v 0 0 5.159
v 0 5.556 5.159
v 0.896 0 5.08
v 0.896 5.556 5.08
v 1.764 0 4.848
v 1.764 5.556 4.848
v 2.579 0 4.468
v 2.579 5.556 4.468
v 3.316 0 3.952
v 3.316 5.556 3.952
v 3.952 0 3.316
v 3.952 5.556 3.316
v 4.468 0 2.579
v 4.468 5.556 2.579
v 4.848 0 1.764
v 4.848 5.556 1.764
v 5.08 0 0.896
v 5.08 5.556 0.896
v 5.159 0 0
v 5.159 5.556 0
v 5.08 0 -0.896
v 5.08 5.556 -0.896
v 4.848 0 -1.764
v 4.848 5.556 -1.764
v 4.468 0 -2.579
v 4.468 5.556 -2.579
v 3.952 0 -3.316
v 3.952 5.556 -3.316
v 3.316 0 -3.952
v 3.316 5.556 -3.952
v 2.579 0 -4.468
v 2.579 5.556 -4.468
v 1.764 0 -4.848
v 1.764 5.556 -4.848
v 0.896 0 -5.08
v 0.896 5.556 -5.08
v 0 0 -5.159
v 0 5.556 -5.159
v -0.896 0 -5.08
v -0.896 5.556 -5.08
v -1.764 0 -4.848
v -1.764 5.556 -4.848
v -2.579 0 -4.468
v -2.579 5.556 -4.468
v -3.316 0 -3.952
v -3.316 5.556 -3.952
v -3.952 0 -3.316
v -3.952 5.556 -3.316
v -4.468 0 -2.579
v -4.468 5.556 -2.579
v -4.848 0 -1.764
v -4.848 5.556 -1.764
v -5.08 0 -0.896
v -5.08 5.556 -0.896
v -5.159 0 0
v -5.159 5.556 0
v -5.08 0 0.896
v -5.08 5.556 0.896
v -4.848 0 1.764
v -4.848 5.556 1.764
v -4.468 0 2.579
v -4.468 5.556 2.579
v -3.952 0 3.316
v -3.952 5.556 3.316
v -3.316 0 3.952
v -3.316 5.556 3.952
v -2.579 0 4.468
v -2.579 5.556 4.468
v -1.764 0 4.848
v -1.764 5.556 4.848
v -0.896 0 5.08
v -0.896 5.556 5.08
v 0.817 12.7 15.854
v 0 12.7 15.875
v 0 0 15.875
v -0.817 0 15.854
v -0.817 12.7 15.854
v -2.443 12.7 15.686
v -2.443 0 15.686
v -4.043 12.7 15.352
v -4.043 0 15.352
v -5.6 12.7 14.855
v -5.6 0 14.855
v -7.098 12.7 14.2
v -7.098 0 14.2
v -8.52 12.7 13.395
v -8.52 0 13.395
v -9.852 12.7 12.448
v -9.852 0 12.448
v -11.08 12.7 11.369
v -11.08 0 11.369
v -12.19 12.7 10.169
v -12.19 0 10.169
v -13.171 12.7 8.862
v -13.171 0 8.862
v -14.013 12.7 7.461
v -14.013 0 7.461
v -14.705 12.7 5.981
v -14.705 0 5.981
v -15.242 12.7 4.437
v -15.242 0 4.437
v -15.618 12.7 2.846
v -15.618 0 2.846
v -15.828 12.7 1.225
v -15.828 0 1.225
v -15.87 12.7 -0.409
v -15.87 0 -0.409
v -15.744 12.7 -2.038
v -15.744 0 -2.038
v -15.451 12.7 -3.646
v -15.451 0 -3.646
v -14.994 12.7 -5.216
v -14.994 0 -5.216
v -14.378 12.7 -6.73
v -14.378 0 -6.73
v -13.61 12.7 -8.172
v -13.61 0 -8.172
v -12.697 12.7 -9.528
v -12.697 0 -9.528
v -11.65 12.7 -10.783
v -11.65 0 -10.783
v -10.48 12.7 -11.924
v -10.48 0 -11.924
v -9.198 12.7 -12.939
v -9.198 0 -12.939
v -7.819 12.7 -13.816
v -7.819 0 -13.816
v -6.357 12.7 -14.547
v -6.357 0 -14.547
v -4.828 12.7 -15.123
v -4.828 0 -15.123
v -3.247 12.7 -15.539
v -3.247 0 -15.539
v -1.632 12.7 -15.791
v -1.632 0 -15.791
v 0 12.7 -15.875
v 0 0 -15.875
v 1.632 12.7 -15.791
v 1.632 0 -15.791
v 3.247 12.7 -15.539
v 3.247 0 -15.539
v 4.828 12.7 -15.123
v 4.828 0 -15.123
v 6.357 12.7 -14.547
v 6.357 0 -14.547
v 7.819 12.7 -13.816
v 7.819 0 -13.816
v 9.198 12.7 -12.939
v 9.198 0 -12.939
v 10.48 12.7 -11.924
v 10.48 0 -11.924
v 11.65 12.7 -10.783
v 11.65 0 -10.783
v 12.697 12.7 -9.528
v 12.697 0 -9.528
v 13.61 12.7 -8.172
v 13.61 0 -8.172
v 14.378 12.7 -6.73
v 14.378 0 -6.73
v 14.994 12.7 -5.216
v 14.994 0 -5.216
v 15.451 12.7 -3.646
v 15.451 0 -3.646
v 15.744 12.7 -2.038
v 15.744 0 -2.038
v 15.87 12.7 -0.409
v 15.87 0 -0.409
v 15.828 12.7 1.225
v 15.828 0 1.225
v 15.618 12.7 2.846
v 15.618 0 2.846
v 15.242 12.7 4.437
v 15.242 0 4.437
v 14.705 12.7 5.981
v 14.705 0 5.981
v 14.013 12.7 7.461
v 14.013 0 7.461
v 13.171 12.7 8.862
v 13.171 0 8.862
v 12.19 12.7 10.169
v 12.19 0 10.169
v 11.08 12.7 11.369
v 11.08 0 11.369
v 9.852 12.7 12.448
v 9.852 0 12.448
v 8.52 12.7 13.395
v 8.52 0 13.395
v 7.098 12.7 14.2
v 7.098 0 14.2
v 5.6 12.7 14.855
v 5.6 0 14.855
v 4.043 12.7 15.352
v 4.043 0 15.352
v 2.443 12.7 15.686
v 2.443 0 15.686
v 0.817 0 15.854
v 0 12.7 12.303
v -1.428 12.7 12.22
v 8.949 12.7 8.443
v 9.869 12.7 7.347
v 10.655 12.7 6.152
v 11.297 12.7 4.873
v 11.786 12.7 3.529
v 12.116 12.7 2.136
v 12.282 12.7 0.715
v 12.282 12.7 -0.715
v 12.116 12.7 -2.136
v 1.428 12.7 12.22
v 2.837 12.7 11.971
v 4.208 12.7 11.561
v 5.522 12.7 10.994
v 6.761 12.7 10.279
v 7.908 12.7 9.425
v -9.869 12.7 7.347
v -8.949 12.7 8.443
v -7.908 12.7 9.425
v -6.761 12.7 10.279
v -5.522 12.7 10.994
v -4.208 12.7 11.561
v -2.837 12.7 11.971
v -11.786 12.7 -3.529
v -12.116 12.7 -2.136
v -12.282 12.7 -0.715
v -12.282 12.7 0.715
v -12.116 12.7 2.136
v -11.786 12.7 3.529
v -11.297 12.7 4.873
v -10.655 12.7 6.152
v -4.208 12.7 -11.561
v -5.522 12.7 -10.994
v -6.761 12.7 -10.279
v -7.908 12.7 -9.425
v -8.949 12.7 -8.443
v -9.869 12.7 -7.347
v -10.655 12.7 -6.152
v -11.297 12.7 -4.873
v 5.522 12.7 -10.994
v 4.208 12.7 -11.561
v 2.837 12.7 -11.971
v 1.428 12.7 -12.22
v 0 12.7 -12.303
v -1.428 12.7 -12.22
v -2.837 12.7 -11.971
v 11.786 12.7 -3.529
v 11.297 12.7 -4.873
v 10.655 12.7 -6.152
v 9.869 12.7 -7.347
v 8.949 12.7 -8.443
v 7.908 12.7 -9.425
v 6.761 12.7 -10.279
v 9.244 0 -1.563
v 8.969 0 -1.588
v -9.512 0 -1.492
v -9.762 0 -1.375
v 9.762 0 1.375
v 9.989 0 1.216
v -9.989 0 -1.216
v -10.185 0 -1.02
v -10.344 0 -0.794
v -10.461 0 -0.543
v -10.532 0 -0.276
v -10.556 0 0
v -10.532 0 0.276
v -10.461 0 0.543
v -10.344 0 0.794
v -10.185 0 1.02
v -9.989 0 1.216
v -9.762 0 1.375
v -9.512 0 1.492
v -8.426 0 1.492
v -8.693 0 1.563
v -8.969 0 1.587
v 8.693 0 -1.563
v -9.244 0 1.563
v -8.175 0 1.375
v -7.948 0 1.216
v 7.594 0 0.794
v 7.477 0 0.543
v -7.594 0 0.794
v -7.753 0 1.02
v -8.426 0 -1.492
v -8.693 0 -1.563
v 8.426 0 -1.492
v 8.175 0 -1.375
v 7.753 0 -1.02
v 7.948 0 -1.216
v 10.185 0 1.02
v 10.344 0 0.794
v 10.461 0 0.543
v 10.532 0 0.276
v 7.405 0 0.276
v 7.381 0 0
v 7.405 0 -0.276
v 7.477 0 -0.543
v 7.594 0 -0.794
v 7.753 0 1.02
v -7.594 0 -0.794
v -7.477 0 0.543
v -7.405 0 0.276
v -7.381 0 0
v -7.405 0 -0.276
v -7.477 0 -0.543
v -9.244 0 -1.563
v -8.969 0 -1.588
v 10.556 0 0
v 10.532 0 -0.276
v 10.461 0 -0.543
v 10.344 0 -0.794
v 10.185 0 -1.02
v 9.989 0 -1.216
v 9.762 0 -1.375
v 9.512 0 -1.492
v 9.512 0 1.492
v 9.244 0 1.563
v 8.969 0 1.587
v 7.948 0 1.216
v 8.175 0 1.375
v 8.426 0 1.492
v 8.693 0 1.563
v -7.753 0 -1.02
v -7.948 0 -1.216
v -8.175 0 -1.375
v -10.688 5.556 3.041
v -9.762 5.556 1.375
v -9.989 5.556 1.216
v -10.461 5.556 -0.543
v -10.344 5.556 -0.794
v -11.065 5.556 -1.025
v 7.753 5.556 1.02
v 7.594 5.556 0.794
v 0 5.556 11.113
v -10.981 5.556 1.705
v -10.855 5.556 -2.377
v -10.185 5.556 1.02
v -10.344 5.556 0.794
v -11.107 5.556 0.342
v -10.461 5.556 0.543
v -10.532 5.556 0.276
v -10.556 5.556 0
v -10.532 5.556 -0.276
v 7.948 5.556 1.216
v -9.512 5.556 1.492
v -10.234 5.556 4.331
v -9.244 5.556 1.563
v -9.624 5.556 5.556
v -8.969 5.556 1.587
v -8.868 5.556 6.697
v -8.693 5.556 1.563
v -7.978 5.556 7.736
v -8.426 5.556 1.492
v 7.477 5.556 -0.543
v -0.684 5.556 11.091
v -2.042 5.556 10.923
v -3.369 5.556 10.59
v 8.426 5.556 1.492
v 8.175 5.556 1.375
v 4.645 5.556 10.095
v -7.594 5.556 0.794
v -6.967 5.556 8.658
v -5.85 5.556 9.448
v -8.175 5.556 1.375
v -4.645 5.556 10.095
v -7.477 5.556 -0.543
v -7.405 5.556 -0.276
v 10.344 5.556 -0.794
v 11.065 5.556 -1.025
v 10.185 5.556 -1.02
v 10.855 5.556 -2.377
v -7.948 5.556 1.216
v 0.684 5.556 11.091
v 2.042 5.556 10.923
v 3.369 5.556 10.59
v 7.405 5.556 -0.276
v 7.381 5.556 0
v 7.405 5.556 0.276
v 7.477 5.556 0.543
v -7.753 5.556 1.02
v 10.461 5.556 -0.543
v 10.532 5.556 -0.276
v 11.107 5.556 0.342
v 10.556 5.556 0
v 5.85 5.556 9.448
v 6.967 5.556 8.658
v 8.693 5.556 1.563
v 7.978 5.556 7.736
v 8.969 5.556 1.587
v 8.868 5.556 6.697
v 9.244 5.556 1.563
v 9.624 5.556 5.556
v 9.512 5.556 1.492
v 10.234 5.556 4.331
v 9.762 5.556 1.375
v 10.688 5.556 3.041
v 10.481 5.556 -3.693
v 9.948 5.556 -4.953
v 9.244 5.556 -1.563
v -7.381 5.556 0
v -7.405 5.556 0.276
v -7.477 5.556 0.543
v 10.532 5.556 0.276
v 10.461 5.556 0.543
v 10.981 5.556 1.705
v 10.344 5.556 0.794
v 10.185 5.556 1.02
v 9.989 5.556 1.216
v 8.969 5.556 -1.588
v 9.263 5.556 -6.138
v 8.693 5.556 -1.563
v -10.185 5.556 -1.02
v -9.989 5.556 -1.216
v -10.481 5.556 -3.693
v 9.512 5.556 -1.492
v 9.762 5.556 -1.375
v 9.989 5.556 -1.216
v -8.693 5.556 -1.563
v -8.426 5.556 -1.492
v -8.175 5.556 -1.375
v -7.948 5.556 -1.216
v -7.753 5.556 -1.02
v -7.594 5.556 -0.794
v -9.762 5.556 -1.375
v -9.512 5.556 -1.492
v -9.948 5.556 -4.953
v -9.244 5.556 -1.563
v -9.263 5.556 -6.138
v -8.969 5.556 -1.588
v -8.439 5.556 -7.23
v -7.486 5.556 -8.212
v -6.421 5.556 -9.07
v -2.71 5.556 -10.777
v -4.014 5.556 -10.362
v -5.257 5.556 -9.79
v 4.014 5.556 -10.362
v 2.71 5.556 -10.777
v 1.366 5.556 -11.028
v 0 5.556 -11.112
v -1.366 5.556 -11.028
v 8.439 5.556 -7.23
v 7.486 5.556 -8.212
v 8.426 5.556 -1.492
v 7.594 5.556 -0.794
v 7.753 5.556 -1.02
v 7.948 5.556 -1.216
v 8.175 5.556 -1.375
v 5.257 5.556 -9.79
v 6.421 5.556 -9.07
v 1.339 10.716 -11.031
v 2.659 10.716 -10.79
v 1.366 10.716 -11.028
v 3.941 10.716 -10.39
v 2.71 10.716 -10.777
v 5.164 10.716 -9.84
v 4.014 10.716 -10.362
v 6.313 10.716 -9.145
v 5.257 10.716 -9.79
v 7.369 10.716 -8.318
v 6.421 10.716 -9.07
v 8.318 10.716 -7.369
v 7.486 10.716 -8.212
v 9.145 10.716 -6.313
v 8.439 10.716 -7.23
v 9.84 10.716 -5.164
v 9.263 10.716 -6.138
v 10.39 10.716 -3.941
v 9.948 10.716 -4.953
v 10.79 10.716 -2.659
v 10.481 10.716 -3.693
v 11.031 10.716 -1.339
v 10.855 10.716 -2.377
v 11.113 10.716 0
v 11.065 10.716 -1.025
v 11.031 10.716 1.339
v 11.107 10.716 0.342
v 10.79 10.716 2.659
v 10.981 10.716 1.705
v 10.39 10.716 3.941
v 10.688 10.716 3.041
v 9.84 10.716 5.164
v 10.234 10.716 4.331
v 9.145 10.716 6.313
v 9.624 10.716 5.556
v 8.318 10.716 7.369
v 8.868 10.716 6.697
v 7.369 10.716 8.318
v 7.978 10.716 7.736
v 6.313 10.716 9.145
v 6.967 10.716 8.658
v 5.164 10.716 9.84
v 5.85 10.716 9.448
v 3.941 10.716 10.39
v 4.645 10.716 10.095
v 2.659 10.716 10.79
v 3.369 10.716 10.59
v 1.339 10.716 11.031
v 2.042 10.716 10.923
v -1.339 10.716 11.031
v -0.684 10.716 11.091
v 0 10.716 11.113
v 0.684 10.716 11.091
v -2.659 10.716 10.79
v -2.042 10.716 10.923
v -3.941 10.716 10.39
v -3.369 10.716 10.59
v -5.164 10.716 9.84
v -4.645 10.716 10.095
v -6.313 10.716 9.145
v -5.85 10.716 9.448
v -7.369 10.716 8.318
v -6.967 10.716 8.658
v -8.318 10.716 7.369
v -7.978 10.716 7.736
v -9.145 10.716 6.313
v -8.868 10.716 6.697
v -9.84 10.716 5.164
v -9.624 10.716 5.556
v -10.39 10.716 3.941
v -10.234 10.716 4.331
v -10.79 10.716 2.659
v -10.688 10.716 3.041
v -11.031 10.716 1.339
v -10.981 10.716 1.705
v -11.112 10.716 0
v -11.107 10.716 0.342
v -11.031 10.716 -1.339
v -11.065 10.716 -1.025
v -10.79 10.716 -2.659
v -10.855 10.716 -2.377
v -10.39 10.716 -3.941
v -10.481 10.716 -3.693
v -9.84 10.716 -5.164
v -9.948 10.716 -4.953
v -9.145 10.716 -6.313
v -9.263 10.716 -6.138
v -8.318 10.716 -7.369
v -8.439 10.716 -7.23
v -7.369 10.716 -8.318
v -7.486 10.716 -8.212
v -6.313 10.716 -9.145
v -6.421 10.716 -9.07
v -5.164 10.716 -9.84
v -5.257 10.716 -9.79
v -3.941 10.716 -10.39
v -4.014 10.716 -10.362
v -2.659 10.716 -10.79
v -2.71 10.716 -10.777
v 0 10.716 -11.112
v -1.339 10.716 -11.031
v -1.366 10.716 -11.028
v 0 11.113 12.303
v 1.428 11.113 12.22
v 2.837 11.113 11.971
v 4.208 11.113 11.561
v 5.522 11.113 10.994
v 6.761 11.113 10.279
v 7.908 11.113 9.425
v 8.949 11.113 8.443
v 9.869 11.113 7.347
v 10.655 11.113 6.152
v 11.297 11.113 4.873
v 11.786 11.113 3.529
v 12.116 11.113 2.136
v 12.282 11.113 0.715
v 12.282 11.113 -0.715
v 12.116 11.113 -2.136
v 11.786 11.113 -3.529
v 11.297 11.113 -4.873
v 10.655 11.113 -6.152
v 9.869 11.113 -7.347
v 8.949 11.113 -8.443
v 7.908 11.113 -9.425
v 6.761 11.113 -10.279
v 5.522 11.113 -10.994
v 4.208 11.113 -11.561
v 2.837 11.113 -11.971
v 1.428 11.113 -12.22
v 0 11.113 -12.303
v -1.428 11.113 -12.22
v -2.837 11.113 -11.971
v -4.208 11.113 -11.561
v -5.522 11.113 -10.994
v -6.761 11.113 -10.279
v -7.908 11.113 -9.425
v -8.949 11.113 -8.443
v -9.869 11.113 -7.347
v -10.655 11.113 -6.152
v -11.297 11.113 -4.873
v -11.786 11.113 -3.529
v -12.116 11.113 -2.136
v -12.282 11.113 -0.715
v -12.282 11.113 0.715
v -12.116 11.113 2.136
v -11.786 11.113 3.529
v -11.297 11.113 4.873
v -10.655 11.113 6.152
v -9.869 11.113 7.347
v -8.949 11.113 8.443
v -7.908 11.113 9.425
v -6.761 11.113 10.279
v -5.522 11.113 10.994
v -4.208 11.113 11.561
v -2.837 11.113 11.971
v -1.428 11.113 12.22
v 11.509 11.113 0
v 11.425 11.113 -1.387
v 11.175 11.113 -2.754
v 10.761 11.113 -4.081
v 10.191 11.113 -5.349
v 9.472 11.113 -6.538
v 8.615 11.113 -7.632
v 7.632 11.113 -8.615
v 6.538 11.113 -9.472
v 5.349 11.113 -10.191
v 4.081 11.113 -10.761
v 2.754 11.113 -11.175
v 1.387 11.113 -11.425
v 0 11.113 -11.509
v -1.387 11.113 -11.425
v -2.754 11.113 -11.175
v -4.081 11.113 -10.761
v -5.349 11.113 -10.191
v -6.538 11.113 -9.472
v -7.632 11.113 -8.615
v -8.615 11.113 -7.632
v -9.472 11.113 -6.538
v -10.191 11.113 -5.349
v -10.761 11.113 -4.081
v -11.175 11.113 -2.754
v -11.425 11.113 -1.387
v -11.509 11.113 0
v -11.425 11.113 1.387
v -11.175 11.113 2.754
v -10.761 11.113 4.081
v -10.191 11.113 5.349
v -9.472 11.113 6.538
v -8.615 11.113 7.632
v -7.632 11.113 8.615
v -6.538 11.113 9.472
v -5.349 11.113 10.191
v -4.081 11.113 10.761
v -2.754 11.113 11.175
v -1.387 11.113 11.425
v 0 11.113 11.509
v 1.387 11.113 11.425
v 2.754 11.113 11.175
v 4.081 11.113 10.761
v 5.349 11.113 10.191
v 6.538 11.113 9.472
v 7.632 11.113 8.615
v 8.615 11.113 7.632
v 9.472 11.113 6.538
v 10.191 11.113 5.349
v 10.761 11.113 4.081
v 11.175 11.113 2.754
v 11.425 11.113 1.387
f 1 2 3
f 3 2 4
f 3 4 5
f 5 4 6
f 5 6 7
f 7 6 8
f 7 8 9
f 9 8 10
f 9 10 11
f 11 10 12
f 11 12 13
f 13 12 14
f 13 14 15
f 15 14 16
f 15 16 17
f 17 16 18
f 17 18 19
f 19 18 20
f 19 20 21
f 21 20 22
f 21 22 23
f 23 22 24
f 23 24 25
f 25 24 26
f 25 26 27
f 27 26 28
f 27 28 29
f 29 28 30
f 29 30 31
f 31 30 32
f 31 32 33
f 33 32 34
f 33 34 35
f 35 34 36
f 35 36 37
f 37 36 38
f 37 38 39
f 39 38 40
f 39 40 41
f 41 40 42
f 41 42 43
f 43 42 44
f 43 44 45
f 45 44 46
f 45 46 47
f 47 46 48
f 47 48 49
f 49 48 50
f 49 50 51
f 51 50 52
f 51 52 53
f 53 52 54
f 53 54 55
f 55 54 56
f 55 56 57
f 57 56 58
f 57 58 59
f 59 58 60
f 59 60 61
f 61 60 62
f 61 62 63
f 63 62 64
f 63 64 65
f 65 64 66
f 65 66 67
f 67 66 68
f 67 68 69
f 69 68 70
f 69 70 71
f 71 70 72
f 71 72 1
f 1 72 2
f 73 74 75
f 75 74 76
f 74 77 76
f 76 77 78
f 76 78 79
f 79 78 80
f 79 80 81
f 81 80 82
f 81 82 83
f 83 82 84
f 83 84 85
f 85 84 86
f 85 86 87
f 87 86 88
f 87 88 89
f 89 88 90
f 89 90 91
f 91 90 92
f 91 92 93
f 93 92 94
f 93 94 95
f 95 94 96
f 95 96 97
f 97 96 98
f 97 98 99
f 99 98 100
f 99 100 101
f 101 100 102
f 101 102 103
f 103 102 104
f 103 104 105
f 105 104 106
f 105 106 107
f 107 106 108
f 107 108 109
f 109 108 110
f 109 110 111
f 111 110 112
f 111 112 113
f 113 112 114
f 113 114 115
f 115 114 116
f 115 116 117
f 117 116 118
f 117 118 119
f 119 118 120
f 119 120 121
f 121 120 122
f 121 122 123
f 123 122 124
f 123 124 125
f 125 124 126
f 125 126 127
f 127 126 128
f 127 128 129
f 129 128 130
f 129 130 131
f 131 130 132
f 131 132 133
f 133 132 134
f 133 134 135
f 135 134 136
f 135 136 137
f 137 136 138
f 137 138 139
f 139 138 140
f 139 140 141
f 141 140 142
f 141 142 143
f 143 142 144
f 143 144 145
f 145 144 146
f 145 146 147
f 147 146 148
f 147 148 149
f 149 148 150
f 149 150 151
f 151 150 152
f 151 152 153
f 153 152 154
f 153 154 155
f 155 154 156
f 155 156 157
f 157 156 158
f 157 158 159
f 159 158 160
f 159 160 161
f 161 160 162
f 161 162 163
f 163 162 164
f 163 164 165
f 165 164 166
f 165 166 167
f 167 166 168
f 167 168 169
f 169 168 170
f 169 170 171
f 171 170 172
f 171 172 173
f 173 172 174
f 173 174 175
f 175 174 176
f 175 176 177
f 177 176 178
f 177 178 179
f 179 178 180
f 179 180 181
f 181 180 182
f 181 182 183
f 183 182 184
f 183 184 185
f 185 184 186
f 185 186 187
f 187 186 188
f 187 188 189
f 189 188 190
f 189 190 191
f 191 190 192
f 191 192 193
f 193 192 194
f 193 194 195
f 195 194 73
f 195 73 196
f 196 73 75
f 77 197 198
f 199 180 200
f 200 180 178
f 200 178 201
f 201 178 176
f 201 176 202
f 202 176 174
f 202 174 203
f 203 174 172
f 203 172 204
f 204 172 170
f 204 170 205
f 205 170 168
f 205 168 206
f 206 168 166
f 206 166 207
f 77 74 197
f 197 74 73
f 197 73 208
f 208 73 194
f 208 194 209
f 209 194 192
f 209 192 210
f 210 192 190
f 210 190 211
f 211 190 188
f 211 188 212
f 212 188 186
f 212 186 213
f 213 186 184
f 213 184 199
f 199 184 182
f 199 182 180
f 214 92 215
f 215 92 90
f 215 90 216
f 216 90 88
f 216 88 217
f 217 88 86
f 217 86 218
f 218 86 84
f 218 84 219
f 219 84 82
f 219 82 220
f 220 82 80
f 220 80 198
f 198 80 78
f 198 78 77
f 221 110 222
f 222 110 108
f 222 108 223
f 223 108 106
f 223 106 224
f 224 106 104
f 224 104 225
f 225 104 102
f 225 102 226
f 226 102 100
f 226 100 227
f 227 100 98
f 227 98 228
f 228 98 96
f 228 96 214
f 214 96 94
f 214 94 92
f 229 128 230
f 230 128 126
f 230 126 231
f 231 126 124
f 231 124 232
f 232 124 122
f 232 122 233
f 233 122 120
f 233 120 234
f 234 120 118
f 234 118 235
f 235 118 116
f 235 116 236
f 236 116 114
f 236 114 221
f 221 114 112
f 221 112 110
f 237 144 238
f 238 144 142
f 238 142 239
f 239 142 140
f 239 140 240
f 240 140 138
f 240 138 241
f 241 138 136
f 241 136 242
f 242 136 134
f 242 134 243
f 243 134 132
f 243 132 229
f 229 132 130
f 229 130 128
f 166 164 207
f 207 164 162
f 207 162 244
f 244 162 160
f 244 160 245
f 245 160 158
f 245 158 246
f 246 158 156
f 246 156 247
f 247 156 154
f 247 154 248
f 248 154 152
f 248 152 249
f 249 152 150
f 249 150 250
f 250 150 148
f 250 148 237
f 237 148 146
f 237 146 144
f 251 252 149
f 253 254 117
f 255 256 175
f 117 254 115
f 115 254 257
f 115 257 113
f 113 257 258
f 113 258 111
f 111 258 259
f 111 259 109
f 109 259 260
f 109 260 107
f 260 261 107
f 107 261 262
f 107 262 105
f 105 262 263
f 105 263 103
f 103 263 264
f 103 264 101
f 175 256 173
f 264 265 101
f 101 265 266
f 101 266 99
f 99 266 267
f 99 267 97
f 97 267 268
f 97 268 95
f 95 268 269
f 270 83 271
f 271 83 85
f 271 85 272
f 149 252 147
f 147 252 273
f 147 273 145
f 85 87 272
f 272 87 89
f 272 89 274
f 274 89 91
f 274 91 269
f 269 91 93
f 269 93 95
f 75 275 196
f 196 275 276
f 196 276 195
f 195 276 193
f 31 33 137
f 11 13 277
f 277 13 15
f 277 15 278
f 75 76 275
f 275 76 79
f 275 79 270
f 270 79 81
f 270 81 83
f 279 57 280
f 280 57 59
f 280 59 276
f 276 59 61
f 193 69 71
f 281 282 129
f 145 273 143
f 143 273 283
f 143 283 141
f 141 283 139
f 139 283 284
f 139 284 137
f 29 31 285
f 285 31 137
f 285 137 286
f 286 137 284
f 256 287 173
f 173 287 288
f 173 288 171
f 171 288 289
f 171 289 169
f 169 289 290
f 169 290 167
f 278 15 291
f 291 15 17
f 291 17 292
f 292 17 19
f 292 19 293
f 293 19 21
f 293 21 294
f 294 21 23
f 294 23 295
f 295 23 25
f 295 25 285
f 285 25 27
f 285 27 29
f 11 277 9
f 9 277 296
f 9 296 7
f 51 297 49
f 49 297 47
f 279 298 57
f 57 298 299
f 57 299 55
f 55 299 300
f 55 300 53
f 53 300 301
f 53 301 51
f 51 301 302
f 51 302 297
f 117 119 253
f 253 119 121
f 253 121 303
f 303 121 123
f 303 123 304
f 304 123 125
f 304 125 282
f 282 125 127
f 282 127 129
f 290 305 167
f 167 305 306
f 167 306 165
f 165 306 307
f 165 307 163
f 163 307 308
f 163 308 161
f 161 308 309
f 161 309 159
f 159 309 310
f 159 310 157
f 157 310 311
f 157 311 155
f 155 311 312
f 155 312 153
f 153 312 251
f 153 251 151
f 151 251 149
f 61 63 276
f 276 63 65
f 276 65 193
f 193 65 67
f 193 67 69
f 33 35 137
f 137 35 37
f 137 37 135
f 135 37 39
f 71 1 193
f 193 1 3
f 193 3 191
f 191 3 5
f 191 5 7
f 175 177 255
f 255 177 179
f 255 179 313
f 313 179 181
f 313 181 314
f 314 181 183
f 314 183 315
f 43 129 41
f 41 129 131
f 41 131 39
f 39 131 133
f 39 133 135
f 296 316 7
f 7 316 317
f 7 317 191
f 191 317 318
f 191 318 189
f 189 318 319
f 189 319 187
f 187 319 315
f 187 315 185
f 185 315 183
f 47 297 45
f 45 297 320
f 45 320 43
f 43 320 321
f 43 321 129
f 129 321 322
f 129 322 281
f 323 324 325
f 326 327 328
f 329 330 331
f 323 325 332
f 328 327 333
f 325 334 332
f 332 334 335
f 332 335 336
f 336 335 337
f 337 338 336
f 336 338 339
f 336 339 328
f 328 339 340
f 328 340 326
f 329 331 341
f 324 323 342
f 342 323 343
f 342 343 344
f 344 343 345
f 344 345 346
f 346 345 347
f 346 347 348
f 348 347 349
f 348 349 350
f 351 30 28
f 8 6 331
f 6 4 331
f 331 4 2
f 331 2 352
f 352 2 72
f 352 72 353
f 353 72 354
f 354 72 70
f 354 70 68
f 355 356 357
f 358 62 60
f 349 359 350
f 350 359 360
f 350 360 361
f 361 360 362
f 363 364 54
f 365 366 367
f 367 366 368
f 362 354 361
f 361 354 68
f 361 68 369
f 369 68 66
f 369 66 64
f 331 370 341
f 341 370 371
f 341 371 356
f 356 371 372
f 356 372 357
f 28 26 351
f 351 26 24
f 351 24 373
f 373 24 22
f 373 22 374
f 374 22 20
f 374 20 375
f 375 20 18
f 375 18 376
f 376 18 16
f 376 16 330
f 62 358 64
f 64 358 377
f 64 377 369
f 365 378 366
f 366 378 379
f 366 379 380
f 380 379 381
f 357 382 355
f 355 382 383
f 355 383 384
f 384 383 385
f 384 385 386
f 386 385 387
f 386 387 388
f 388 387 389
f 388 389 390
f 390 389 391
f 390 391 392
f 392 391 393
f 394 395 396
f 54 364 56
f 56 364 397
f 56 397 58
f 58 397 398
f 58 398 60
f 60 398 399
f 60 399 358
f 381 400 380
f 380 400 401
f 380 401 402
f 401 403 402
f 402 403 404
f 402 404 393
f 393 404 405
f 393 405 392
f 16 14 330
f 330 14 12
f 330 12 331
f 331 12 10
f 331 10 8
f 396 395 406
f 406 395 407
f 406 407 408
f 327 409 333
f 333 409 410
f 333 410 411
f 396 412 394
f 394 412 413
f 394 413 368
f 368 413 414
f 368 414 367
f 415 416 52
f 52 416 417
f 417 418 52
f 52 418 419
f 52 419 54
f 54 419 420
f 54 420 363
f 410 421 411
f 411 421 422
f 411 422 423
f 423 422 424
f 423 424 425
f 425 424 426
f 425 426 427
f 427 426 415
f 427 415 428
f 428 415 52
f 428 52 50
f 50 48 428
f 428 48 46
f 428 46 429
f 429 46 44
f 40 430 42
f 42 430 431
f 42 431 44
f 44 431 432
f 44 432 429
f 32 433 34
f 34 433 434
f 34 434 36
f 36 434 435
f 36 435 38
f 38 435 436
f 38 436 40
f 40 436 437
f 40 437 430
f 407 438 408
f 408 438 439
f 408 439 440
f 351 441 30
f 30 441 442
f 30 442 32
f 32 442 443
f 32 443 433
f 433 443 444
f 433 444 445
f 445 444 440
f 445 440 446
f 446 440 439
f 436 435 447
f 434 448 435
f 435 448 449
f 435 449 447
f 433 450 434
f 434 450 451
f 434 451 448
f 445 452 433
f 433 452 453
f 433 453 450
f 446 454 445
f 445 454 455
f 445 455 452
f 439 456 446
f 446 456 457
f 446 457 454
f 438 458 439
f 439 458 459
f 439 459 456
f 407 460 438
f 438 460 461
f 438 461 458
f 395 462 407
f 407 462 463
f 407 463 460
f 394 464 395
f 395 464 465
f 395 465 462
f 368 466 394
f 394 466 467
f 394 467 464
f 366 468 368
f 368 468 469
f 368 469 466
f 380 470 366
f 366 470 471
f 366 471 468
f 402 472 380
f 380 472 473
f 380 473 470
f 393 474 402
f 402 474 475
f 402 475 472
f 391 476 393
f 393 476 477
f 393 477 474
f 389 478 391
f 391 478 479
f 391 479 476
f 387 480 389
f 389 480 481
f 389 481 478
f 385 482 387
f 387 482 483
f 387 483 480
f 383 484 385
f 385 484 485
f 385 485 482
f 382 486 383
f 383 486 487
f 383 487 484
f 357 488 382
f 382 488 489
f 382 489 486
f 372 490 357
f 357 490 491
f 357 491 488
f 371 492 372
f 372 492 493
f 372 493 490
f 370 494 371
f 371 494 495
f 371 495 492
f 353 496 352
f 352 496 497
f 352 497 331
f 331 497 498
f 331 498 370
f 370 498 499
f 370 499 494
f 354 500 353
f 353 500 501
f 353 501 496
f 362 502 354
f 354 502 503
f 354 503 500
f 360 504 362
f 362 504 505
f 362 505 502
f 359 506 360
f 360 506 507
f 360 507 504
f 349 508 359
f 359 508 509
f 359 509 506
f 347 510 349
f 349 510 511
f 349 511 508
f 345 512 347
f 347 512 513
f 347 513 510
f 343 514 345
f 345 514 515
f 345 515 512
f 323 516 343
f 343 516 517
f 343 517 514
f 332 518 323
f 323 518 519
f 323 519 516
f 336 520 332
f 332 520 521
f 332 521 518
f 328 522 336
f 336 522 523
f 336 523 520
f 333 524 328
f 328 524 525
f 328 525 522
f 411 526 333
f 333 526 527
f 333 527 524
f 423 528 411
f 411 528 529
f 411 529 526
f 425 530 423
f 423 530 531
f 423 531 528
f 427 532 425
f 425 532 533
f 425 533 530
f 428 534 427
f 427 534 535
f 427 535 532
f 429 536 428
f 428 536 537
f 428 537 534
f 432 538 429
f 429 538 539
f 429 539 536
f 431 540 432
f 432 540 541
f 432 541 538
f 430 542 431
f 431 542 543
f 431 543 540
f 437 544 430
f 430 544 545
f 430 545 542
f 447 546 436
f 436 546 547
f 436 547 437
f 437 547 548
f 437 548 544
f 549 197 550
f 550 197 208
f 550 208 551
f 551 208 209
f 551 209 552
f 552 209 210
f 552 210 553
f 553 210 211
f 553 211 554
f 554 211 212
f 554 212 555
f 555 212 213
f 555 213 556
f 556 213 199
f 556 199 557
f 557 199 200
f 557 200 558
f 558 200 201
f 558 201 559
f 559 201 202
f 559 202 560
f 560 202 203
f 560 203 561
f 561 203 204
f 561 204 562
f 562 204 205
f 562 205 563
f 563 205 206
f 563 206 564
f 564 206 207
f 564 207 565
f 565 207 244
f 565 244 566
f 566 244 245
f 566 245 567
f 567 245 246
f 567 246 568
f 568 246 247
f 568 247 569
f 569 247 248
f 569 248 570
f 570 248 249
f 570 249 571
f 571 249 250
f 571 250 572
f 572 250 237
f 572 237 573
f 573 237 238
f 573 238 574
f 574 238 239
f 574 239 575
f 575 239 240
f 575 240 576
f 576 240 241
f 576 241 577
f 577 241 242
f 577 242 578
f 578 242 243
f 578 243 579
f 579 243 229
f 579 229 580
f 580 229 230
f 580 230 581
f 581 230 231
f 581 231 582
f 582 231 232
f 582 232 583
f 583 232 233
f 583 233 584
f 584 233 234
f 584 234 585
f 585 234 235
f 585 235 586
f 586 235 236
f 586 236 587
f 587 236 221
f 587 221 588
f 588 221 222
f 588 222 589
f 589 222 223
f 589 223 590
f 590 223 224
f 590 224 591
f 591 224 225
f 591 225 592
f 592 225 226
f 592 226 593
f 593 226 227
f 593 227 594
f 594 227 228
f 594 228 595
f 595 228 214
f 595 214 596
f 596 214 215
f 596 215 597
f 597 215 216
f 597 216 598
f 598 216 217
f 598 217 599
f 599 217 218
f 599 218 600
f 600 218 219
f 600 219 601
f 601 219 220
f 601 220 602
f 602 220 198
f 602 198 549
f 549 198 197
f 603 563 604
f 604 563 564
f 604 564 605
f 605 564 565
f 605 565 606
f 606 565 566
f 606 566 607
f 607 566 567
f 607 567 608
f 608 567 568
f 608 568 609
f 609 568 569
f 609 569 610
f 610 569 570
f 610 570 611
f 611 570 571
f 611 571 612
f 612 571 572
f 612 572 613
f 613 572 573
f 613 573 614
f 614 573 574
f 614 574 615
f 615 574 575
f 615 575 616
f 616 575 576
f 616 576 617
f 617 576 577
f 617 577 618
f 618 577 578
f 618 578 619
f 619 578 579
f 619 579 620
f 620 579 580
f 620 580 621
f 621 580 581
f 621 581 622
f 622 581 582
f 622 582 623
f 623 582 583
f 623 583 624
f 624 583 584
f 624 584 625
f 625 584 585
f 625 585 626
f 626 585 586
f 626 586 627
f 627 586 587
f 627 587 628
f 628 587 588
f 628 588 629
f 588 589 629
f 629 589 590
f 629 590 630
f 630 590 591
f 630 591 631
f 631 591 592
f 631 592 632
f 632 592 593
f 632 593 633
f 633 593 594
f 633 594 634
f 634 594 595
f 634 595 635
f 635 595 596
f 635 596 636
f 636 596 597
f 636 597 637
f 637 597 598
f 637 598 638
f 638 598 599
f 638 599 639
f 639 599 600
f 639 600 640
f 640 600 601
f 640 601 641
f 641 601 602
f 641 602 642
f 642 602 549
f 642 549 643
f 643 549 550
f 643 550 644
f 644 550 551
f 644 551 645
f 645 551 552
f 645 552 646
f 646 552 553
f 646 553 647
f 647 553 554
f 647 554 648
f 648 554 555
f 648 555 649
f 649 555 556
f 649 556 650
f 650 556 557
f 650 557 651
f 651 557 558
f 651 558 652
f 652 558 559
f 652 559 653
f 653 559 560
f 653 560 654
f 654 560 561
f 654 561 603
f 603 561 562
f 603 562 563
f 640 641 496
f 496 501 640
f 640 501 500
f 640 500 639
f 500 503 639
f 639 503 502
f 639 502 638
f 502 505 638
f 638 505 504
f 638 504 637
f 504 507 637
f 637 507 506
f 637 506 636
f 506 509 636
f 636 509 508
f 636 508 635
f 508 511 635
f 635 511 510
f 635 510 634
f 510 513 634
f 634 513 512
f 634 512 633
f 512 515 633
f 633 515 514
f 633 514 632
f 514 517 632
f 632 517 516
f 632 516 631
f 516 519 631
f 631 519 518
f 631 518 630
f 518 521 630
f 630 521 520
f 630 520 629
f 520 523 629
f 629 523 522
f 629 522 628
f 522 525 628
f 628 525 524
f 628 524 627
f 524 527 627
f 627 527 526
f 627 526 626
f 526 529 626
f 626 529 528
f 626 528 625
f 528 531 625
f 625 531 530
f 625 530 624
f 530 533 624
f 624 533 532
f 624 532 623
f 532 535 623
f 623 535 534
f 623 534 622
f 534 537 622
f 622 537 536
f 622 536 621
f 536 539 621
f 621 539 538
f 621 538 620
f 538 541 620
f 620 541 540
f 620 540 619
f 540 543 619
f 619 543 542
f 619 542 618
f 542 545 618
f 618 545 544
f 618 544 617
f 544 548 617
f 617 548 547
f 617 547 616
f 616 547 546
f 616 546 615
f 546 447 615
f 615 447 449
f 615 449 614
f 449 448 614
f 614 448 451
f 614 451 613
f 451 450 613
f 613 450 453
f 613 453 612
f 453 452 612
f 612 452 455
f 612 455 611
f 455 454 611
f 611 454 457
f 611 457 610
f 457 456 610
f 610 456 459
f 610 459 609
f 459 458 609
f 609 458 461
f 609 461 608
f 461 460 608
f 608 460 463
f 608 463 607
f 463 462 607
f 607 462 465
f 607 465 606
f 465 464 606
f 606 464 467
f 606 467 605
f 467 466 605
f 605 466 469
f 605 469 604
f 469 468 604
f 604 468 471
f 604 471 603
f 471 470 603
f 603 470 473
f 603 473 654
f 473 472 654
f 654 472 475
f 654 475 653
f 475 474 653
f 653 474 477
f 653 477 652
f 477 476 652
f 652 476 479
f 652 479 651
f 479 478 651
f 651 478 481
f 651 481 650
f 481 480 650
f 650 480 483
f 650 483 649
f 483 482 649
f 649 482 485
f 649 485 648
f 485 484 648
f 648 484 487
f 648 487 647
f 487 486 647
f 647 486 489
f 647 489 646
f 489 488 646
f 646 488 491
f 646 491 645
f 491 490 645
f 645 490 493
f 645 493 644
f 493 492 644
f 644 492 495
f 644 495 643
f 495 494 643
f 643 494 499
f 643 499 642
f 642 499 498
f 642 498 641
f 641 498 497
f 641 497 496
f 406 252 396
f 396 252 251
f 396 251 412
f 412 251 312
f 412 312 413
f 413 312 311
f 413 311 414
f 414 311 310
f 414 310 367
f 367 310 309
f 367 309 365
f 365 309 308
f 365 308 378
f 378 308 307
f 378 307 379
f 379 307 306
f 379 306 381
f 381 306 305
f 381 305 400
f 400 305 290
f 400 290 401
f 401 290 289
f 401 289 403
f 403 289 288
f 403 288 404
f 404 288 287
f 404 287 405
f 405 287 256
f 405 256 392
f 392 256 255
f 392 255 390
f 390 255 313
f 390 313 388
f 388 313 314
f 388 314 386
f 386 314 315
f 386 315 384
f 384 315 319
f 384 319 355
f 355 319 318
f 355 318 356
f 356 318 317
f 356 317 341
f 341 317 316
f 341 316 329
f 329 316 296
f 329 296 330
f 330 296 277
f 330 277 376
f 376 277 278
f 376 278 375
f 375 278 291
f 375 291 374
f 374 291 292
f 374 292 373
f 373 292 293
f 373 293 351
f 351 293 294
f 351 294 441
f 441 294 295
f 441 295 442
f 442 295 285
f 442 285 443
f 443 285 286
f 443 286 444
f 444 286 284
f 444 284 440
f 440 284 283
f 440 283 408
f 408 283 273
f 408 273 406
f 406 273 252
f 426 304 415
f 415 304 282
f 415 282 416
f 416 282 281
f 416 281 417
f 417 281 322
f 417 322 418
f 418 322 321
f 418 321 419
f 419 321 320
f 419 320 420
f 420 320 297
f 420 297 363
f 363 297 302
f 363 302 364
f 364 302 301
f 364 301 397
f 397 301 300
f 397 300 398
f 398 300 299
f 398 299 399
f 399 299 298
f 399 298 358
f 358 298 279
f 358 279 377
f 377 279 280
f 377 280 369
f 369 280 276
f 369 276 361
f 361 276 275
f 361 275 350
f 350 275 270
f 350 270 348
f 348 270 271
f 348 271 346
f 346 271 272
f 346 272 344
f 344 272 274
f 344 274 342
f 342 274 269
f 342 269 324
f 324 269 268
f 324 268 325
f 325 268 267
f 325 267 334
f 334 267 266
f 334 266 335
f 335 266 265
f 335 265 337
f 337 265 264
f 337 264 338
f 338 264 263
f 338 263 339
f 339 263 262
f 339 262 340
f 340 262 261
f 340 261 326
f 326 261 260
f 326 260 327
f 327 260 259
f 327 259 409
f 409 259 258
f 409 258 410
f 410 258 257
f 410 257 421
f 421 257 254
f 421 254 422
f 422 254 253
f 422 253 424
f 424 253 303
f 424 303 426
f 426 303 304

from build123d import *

# Parameters (mm, degrees)
SKETCH1_R               = 15.875
BOSS_EXTRUDE1_DEPTH     = 12.7
F_3_8_CLEARANCE_HOLE1_D = 10.31748
CUT_EXTRUDE1_DEPTH      = 26.793821935
CUT_EXTRUDE1_DEPTH_BACK = 26.793821935
SKETCH4_R               = 1.5875


with BuildPart() as part:
    # Sketch1 → Boss-Extrude1 (new body)
    with BuildSketch(Plane(origin=(0, 0, 0), x_dir=(1, 0, 0), z_dir=(0, 1, 0))):
        with Locations(Location((0, 0, 0), (0, 0, 270))):
            Circle(SKETCH1_R)
    extrude(amount=BOSS_EXTRUDE1_DEPTH)

    # 3/8 Clearance Hole1 (through all)
    with Locations(Plane(origin=(0, 12.7, 0), x_dir=(1, 0, 0), z_dir=(0, 1, 0))):
        with Locations((0, 0)):
            Hole(F_3_8_CLEARANCE_HOLE1_D / 2)


with BuildPart() as body_2:
    # uxcell-FR6ZZ: read off the stored shape, not the designer's step
    # uxcell-FR6ZZ outline → uxcell-FR6ZZ (revolve)
    with BuildSketch(Plane(origin=(-41.000177455, 0, 16.423895222), x_dir=(1, 0, 0), z_dir=(0, 0, 1))):
        Polygon((12.303125, 21.164419461), (4.7625, 21.164419461), (4.7625, 14.020669461), (11.1125, 14.020669461), (11.1125, 19.180044461), (11.509375, 19.576919461), (12.303125, 19.576919461), align=None)
    revolve(axis=Axis((-41.000177455, 0, 16.423895222), (0, 1, 0)))


with BuildPart() as body_2_1:
    # Body-Move/Copy2: read off the stored shape, not the designer's step
    # Body-Move/Copy2: moved
    add(body_2.part.moved(Location((41.0001775, -8.4644195, -16.4238952))))


with BuildPart() as part_1:
    add(part.part)

    # Combine1: cut body 2
    add(body_2_1.part, mode=Mode.SUBTRACT)

    # Sketch4 → Cut-Extrude1 (cut, two sides: drawn at the far end of the back side and taken through both)
    with BuildSketch(Plane(origin=(0, 0, 0), x_dir=(1, 0, 0), z_dir=(0, 1, 0)).offset(-CUT_EXTRUDE1_DEPTH_BACK)):
        with Locations(Location((-8.96874, 0, 0), (0, 0, 270))):
            Circle(SKETCH4_R)
        with Locations(Location((8.96874, 0, 0), (0, 0, 270))):
            Circle(SKETCH4_R)
    extrude(amount=CUT_EXTRUDE1_DEPTH + CUT_EXTRUDE1_DEPTH_BACK, mode=Mode.SUBTRACT)


solid = part_1.part
